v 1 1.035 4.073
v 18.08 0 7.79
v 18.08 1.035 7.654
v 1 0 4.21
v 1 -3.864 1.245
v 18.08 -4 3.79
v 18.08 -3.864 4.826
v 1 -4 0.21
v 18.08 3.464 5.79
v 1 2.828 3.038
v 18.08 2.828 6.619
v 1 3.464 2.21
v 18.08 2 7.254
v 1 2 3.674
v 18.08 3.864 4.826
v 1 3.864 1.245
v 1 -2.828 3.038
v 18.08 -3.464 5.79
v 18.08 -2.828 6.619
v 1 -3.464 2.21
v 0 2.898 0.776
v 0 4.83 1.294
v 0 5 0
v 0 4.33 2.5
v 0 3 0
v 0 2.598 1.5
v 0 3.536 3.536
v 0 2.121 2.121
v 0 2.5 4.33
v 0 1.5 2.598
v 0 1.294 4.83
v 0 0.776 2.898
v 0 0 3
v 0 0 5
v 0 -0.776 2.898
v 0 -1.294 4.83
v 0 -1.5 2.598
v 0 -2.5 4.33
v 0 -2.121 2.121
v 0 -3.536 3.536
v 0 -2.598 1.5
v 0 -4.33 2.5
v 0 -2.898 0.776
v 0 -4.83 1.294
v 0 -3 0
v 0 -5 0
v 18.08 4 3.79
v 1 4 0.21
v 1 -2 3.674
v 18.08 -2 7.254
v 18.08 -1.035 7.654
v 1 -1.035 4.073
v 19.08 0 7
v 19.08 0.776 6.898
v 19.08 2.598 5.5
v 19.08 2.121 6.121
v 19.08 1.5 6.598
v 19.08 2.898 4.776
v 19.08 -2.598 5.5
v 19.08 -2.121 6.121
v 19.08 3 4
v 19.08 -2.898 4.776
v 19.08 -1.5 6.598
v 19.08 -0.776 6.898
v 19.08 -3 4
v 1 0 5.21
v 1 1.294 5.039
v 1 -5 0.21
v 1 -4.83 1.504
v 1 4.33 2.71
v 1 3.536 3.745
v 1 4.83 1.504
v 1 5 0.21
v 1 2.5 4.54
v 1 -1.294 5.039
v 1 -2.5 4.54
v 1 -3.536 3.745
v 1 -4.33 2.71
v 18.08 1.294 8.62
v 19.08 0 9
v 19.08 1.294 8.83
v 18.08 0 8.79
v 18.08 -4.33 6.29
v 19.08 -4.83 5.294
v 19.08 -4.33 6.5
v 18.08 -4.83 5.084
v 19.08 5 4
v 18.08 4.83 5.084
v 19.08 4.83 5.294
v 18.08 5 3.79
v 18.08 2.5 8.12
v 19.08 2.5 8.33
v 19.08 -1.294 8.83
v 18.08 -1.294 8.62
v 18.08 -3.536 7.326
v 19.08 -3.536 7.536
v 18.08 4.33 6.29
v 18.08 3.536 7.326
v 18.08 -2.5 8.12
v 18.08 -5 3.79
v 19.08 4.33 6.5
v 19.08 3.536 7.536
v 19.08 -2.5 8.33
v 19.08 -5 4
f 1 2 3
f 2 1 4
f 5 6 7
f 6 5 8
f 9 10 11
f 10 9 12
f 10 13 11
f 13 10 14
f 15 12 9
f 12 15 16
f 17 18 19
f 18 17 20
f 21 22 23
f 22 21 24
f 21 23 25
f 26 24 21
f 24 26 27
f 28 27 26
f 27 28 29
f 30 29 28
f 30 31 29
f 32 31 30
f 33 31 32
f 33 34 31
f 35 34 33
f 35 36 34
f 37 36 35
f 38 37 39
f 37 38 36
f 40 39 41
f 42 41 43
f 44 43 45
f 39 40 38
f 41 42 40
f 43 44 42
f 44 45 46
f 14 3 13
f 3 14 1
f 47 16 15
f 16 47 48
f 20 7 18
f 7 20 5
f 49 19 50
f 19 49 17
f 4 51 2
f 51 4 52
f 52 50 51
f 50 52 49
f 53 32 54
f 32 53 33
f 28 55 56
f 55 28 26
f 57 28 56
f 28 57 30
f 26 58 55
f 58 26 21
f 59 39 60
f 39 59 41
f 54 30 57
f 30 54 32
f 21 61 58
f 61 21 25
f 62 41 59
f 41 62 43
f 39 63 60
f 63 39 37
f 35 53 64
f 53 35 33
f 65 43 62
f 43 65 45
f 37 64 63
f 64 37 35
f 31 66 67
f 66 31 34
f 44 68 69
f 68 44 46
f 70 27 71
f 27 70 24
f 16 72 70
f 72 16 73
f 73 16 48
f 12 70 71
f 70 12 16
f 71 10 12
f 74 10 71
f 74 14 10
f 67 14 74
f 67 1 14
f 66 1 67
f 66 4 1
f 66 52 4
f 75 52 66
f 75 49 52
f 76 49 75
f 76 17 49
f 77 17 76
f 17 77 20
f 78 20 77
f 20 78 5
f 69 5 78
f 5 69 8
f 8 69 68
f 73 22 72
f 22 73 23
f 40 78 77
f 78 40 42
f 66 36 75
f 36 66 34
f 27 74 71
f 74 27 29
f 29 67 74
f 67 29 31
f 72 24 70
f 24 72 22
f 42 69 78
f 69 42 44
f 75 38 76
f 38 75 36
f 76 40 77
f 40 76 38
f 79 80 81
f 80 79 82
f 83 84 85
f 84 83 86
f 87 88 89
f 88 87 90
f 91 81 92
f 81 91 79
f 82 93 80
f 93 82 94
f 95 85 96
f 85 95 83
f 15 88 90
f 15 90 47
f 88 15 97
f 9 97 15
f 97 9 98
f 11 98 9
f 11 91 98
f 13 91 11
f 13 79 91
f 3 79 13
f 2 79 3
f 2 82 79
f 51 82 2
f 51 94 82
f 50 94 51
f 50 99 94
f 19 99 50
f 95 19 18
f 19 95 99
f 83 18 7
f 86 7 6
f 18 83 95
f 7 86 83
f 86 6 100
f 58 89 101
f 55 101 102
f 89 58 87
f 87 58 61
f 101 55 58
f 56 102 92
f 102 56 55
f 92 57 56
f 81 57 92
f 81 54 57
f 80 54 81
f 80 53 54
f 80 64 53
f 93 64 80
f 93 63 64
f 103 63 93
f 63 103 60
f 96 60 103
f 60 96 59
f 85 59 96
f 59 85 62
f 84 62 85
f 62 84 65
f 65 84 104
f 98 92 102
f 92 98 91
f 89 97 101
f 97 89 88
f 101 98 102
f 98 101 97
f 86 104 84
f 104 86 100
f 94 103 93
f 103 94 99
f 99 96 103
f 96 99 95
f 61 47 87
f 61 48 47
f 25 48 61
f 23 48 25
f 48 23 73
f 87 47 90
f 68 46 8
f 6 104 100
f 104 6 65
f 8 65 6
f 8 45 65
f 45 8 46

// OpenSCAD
// file: ../build_environments.scad
// build_environments.scad: modules to build level sections
//

module pool(diameter=10.0, wall_height=2.0, step_width=3.0, connections=[])
{
    difference() {
        union() {
        difference() {
            cylinder(h=0.5,r1=diameter+step_width,r2=diameter+step_width,$fn=48);
            translate([0,0,-0.1])
                cylinder(h=0.7,r1=diameter,r2=diameter,$fn=48);
        }
        difference() {
            cylinder(h=wall_height,r1=diameter+step_width+1.0,r2=diameter+step_width+1.0,$fn=48);
            translate([0,0,-0.1])
                cylinder(h=wall_height+0.2,r1=diameter+step_width,r2=diameter+step_width,$fn=48);
        }
        }
    
        for (c = connections)
        {
            rotate([0,90,0]) {
                angle = atan2(c[1],c[0]);
                rotate([-angle,0,0]) {
                    cylinder(h=diameter+5.0,r1=c[2],r2=c[2],$fn=48);
                }
            }
        }
    }
}

module straight(length=10.0, width=2.0, dy1=0.0, dy2=0.0, dz=0.0)
{
    dims = [0, 0, 0, 0, 0, (dz/length)];
    matrix = [
        [ 1, dims[0], dims[1], 0 ],
        [ dims[2], 1, dims[4], 0 ],
        [ dims[5], dims[3], 1, 0 ],
        [ 0, 0, 0, 1 ]
    ];
    multmatrix(matrix)
    difference() {
        translate([dy1,0,0])
        union() {
            rotate([0,90,0]) {
                difference() {
                    cylinder(h=(length-dy1-dy2),r1=width+1.0,r2=width+1.0,$fn=24);
                    translate([0,0,-0.1])
                        cylinder(h=(length-dy1-dy2+0.2),r1=width,r2=width,$fn=24);
                }
                difference() {
                    cylinder(h=1.0,r1=width+2.0,r2=width+2.0,$fn=24);
                    translate([0,0,-0.1])
                        cylinder(h=1.2,r1=width,r2=width,$fn=24);
                }
                translate([0,0,(length-dy1-dy2)-1.0]) {
                    difference() {
                        cylinder(h=1.0,r1=width+2.0,r2=width+2.0,$fn=24);
                        translate([0,0,-0.1])
                            cylinder(h=1.2,r1=width,r2=width,$fn=24);
                    }
                }
            }
        }
        translate([0,0,-(2*width+4.0)/2])
            cube([3*length,3*length,2*width+4.0],center=true);
    }
}

module curve(p0=[0,0], center=[0,0], dir=1, angle=0.0, width=2.0)
{
    radius = sqrt((p0[0]-center[0])*(p0[0]-center[0]) + (p0[1]-center[1])*(p0[1]-center[1]));
    if (dir == 0) {
        difference() {
            rotate([0,0,-90])
            difference() {
                rotate_extrude(angle = angle, convexity = 10, $fn=32)
                    translate([radius, 0, 0])
                        circle(r = width+1.0,$fn=24);
                rotate([0,0,-1.0])
                    rotate_extrude(angle = angle+2.0, convexity = 10, $fn=32)
                        translate([radius, 0, 0])
                            circle(r = width,$fn=24);
            }
            translate([0,0,-(2*width+4.0)/2])
                cube([5*radius,5*radius,2*width+4.0],center=true);
        }
    }
    else {
        difference() {
            rotate([0,0,90])
            difference() {
                rotate_extrude(angle = -angle, convexity = 10, $fn=32)
                    translate([radius, 0, 0])
                        circle(r = width+1.0,$fn=24);
                rotate([0,0,1.0])
                    rotate_extrude(angle = -angle-2.0, convexity = 10, $fn=32)
                        translate([radius, 0, 0])
                            circle(r = width,$fn=24);
            }
            translate([0,0,-(2*width+4.0)/2])
                cube([5*radius,5*radius,2*width+4.0],center=true);
        }
    }

}

// test pool
//pool(diameter=12.0000, wall_height=3.0000, step_width=3.0000, connections=[[0.0000,-26.0000,2.0000], [23.6074,0.0000,2.0000]]);

// test straight, slope
//straight(length=26.0000, width=2.0000, dy1=11.8322, dy2=6.7082, dz=0.0000);
//straight(length=29.1549, width=12.0000, dy1=0.0000, dy2=0.0000, dz=-15.0000);

// test curve
//curve(p0=[23.6074, 0.0000], center=[23.6074, 5.0000], dir=0, angle=60.1011, width=2.0000);
//curve(p0=[33.6426, 12.4219], center=[37.9771, 9.9295], dir=1, angle=120.4627, width=2.0000);
// main file
use <../build_environments.scad>;
straight(length=19.0797, width=3.0000, dy1=0.0000, dy2=0.0000, dz=4.0000);
